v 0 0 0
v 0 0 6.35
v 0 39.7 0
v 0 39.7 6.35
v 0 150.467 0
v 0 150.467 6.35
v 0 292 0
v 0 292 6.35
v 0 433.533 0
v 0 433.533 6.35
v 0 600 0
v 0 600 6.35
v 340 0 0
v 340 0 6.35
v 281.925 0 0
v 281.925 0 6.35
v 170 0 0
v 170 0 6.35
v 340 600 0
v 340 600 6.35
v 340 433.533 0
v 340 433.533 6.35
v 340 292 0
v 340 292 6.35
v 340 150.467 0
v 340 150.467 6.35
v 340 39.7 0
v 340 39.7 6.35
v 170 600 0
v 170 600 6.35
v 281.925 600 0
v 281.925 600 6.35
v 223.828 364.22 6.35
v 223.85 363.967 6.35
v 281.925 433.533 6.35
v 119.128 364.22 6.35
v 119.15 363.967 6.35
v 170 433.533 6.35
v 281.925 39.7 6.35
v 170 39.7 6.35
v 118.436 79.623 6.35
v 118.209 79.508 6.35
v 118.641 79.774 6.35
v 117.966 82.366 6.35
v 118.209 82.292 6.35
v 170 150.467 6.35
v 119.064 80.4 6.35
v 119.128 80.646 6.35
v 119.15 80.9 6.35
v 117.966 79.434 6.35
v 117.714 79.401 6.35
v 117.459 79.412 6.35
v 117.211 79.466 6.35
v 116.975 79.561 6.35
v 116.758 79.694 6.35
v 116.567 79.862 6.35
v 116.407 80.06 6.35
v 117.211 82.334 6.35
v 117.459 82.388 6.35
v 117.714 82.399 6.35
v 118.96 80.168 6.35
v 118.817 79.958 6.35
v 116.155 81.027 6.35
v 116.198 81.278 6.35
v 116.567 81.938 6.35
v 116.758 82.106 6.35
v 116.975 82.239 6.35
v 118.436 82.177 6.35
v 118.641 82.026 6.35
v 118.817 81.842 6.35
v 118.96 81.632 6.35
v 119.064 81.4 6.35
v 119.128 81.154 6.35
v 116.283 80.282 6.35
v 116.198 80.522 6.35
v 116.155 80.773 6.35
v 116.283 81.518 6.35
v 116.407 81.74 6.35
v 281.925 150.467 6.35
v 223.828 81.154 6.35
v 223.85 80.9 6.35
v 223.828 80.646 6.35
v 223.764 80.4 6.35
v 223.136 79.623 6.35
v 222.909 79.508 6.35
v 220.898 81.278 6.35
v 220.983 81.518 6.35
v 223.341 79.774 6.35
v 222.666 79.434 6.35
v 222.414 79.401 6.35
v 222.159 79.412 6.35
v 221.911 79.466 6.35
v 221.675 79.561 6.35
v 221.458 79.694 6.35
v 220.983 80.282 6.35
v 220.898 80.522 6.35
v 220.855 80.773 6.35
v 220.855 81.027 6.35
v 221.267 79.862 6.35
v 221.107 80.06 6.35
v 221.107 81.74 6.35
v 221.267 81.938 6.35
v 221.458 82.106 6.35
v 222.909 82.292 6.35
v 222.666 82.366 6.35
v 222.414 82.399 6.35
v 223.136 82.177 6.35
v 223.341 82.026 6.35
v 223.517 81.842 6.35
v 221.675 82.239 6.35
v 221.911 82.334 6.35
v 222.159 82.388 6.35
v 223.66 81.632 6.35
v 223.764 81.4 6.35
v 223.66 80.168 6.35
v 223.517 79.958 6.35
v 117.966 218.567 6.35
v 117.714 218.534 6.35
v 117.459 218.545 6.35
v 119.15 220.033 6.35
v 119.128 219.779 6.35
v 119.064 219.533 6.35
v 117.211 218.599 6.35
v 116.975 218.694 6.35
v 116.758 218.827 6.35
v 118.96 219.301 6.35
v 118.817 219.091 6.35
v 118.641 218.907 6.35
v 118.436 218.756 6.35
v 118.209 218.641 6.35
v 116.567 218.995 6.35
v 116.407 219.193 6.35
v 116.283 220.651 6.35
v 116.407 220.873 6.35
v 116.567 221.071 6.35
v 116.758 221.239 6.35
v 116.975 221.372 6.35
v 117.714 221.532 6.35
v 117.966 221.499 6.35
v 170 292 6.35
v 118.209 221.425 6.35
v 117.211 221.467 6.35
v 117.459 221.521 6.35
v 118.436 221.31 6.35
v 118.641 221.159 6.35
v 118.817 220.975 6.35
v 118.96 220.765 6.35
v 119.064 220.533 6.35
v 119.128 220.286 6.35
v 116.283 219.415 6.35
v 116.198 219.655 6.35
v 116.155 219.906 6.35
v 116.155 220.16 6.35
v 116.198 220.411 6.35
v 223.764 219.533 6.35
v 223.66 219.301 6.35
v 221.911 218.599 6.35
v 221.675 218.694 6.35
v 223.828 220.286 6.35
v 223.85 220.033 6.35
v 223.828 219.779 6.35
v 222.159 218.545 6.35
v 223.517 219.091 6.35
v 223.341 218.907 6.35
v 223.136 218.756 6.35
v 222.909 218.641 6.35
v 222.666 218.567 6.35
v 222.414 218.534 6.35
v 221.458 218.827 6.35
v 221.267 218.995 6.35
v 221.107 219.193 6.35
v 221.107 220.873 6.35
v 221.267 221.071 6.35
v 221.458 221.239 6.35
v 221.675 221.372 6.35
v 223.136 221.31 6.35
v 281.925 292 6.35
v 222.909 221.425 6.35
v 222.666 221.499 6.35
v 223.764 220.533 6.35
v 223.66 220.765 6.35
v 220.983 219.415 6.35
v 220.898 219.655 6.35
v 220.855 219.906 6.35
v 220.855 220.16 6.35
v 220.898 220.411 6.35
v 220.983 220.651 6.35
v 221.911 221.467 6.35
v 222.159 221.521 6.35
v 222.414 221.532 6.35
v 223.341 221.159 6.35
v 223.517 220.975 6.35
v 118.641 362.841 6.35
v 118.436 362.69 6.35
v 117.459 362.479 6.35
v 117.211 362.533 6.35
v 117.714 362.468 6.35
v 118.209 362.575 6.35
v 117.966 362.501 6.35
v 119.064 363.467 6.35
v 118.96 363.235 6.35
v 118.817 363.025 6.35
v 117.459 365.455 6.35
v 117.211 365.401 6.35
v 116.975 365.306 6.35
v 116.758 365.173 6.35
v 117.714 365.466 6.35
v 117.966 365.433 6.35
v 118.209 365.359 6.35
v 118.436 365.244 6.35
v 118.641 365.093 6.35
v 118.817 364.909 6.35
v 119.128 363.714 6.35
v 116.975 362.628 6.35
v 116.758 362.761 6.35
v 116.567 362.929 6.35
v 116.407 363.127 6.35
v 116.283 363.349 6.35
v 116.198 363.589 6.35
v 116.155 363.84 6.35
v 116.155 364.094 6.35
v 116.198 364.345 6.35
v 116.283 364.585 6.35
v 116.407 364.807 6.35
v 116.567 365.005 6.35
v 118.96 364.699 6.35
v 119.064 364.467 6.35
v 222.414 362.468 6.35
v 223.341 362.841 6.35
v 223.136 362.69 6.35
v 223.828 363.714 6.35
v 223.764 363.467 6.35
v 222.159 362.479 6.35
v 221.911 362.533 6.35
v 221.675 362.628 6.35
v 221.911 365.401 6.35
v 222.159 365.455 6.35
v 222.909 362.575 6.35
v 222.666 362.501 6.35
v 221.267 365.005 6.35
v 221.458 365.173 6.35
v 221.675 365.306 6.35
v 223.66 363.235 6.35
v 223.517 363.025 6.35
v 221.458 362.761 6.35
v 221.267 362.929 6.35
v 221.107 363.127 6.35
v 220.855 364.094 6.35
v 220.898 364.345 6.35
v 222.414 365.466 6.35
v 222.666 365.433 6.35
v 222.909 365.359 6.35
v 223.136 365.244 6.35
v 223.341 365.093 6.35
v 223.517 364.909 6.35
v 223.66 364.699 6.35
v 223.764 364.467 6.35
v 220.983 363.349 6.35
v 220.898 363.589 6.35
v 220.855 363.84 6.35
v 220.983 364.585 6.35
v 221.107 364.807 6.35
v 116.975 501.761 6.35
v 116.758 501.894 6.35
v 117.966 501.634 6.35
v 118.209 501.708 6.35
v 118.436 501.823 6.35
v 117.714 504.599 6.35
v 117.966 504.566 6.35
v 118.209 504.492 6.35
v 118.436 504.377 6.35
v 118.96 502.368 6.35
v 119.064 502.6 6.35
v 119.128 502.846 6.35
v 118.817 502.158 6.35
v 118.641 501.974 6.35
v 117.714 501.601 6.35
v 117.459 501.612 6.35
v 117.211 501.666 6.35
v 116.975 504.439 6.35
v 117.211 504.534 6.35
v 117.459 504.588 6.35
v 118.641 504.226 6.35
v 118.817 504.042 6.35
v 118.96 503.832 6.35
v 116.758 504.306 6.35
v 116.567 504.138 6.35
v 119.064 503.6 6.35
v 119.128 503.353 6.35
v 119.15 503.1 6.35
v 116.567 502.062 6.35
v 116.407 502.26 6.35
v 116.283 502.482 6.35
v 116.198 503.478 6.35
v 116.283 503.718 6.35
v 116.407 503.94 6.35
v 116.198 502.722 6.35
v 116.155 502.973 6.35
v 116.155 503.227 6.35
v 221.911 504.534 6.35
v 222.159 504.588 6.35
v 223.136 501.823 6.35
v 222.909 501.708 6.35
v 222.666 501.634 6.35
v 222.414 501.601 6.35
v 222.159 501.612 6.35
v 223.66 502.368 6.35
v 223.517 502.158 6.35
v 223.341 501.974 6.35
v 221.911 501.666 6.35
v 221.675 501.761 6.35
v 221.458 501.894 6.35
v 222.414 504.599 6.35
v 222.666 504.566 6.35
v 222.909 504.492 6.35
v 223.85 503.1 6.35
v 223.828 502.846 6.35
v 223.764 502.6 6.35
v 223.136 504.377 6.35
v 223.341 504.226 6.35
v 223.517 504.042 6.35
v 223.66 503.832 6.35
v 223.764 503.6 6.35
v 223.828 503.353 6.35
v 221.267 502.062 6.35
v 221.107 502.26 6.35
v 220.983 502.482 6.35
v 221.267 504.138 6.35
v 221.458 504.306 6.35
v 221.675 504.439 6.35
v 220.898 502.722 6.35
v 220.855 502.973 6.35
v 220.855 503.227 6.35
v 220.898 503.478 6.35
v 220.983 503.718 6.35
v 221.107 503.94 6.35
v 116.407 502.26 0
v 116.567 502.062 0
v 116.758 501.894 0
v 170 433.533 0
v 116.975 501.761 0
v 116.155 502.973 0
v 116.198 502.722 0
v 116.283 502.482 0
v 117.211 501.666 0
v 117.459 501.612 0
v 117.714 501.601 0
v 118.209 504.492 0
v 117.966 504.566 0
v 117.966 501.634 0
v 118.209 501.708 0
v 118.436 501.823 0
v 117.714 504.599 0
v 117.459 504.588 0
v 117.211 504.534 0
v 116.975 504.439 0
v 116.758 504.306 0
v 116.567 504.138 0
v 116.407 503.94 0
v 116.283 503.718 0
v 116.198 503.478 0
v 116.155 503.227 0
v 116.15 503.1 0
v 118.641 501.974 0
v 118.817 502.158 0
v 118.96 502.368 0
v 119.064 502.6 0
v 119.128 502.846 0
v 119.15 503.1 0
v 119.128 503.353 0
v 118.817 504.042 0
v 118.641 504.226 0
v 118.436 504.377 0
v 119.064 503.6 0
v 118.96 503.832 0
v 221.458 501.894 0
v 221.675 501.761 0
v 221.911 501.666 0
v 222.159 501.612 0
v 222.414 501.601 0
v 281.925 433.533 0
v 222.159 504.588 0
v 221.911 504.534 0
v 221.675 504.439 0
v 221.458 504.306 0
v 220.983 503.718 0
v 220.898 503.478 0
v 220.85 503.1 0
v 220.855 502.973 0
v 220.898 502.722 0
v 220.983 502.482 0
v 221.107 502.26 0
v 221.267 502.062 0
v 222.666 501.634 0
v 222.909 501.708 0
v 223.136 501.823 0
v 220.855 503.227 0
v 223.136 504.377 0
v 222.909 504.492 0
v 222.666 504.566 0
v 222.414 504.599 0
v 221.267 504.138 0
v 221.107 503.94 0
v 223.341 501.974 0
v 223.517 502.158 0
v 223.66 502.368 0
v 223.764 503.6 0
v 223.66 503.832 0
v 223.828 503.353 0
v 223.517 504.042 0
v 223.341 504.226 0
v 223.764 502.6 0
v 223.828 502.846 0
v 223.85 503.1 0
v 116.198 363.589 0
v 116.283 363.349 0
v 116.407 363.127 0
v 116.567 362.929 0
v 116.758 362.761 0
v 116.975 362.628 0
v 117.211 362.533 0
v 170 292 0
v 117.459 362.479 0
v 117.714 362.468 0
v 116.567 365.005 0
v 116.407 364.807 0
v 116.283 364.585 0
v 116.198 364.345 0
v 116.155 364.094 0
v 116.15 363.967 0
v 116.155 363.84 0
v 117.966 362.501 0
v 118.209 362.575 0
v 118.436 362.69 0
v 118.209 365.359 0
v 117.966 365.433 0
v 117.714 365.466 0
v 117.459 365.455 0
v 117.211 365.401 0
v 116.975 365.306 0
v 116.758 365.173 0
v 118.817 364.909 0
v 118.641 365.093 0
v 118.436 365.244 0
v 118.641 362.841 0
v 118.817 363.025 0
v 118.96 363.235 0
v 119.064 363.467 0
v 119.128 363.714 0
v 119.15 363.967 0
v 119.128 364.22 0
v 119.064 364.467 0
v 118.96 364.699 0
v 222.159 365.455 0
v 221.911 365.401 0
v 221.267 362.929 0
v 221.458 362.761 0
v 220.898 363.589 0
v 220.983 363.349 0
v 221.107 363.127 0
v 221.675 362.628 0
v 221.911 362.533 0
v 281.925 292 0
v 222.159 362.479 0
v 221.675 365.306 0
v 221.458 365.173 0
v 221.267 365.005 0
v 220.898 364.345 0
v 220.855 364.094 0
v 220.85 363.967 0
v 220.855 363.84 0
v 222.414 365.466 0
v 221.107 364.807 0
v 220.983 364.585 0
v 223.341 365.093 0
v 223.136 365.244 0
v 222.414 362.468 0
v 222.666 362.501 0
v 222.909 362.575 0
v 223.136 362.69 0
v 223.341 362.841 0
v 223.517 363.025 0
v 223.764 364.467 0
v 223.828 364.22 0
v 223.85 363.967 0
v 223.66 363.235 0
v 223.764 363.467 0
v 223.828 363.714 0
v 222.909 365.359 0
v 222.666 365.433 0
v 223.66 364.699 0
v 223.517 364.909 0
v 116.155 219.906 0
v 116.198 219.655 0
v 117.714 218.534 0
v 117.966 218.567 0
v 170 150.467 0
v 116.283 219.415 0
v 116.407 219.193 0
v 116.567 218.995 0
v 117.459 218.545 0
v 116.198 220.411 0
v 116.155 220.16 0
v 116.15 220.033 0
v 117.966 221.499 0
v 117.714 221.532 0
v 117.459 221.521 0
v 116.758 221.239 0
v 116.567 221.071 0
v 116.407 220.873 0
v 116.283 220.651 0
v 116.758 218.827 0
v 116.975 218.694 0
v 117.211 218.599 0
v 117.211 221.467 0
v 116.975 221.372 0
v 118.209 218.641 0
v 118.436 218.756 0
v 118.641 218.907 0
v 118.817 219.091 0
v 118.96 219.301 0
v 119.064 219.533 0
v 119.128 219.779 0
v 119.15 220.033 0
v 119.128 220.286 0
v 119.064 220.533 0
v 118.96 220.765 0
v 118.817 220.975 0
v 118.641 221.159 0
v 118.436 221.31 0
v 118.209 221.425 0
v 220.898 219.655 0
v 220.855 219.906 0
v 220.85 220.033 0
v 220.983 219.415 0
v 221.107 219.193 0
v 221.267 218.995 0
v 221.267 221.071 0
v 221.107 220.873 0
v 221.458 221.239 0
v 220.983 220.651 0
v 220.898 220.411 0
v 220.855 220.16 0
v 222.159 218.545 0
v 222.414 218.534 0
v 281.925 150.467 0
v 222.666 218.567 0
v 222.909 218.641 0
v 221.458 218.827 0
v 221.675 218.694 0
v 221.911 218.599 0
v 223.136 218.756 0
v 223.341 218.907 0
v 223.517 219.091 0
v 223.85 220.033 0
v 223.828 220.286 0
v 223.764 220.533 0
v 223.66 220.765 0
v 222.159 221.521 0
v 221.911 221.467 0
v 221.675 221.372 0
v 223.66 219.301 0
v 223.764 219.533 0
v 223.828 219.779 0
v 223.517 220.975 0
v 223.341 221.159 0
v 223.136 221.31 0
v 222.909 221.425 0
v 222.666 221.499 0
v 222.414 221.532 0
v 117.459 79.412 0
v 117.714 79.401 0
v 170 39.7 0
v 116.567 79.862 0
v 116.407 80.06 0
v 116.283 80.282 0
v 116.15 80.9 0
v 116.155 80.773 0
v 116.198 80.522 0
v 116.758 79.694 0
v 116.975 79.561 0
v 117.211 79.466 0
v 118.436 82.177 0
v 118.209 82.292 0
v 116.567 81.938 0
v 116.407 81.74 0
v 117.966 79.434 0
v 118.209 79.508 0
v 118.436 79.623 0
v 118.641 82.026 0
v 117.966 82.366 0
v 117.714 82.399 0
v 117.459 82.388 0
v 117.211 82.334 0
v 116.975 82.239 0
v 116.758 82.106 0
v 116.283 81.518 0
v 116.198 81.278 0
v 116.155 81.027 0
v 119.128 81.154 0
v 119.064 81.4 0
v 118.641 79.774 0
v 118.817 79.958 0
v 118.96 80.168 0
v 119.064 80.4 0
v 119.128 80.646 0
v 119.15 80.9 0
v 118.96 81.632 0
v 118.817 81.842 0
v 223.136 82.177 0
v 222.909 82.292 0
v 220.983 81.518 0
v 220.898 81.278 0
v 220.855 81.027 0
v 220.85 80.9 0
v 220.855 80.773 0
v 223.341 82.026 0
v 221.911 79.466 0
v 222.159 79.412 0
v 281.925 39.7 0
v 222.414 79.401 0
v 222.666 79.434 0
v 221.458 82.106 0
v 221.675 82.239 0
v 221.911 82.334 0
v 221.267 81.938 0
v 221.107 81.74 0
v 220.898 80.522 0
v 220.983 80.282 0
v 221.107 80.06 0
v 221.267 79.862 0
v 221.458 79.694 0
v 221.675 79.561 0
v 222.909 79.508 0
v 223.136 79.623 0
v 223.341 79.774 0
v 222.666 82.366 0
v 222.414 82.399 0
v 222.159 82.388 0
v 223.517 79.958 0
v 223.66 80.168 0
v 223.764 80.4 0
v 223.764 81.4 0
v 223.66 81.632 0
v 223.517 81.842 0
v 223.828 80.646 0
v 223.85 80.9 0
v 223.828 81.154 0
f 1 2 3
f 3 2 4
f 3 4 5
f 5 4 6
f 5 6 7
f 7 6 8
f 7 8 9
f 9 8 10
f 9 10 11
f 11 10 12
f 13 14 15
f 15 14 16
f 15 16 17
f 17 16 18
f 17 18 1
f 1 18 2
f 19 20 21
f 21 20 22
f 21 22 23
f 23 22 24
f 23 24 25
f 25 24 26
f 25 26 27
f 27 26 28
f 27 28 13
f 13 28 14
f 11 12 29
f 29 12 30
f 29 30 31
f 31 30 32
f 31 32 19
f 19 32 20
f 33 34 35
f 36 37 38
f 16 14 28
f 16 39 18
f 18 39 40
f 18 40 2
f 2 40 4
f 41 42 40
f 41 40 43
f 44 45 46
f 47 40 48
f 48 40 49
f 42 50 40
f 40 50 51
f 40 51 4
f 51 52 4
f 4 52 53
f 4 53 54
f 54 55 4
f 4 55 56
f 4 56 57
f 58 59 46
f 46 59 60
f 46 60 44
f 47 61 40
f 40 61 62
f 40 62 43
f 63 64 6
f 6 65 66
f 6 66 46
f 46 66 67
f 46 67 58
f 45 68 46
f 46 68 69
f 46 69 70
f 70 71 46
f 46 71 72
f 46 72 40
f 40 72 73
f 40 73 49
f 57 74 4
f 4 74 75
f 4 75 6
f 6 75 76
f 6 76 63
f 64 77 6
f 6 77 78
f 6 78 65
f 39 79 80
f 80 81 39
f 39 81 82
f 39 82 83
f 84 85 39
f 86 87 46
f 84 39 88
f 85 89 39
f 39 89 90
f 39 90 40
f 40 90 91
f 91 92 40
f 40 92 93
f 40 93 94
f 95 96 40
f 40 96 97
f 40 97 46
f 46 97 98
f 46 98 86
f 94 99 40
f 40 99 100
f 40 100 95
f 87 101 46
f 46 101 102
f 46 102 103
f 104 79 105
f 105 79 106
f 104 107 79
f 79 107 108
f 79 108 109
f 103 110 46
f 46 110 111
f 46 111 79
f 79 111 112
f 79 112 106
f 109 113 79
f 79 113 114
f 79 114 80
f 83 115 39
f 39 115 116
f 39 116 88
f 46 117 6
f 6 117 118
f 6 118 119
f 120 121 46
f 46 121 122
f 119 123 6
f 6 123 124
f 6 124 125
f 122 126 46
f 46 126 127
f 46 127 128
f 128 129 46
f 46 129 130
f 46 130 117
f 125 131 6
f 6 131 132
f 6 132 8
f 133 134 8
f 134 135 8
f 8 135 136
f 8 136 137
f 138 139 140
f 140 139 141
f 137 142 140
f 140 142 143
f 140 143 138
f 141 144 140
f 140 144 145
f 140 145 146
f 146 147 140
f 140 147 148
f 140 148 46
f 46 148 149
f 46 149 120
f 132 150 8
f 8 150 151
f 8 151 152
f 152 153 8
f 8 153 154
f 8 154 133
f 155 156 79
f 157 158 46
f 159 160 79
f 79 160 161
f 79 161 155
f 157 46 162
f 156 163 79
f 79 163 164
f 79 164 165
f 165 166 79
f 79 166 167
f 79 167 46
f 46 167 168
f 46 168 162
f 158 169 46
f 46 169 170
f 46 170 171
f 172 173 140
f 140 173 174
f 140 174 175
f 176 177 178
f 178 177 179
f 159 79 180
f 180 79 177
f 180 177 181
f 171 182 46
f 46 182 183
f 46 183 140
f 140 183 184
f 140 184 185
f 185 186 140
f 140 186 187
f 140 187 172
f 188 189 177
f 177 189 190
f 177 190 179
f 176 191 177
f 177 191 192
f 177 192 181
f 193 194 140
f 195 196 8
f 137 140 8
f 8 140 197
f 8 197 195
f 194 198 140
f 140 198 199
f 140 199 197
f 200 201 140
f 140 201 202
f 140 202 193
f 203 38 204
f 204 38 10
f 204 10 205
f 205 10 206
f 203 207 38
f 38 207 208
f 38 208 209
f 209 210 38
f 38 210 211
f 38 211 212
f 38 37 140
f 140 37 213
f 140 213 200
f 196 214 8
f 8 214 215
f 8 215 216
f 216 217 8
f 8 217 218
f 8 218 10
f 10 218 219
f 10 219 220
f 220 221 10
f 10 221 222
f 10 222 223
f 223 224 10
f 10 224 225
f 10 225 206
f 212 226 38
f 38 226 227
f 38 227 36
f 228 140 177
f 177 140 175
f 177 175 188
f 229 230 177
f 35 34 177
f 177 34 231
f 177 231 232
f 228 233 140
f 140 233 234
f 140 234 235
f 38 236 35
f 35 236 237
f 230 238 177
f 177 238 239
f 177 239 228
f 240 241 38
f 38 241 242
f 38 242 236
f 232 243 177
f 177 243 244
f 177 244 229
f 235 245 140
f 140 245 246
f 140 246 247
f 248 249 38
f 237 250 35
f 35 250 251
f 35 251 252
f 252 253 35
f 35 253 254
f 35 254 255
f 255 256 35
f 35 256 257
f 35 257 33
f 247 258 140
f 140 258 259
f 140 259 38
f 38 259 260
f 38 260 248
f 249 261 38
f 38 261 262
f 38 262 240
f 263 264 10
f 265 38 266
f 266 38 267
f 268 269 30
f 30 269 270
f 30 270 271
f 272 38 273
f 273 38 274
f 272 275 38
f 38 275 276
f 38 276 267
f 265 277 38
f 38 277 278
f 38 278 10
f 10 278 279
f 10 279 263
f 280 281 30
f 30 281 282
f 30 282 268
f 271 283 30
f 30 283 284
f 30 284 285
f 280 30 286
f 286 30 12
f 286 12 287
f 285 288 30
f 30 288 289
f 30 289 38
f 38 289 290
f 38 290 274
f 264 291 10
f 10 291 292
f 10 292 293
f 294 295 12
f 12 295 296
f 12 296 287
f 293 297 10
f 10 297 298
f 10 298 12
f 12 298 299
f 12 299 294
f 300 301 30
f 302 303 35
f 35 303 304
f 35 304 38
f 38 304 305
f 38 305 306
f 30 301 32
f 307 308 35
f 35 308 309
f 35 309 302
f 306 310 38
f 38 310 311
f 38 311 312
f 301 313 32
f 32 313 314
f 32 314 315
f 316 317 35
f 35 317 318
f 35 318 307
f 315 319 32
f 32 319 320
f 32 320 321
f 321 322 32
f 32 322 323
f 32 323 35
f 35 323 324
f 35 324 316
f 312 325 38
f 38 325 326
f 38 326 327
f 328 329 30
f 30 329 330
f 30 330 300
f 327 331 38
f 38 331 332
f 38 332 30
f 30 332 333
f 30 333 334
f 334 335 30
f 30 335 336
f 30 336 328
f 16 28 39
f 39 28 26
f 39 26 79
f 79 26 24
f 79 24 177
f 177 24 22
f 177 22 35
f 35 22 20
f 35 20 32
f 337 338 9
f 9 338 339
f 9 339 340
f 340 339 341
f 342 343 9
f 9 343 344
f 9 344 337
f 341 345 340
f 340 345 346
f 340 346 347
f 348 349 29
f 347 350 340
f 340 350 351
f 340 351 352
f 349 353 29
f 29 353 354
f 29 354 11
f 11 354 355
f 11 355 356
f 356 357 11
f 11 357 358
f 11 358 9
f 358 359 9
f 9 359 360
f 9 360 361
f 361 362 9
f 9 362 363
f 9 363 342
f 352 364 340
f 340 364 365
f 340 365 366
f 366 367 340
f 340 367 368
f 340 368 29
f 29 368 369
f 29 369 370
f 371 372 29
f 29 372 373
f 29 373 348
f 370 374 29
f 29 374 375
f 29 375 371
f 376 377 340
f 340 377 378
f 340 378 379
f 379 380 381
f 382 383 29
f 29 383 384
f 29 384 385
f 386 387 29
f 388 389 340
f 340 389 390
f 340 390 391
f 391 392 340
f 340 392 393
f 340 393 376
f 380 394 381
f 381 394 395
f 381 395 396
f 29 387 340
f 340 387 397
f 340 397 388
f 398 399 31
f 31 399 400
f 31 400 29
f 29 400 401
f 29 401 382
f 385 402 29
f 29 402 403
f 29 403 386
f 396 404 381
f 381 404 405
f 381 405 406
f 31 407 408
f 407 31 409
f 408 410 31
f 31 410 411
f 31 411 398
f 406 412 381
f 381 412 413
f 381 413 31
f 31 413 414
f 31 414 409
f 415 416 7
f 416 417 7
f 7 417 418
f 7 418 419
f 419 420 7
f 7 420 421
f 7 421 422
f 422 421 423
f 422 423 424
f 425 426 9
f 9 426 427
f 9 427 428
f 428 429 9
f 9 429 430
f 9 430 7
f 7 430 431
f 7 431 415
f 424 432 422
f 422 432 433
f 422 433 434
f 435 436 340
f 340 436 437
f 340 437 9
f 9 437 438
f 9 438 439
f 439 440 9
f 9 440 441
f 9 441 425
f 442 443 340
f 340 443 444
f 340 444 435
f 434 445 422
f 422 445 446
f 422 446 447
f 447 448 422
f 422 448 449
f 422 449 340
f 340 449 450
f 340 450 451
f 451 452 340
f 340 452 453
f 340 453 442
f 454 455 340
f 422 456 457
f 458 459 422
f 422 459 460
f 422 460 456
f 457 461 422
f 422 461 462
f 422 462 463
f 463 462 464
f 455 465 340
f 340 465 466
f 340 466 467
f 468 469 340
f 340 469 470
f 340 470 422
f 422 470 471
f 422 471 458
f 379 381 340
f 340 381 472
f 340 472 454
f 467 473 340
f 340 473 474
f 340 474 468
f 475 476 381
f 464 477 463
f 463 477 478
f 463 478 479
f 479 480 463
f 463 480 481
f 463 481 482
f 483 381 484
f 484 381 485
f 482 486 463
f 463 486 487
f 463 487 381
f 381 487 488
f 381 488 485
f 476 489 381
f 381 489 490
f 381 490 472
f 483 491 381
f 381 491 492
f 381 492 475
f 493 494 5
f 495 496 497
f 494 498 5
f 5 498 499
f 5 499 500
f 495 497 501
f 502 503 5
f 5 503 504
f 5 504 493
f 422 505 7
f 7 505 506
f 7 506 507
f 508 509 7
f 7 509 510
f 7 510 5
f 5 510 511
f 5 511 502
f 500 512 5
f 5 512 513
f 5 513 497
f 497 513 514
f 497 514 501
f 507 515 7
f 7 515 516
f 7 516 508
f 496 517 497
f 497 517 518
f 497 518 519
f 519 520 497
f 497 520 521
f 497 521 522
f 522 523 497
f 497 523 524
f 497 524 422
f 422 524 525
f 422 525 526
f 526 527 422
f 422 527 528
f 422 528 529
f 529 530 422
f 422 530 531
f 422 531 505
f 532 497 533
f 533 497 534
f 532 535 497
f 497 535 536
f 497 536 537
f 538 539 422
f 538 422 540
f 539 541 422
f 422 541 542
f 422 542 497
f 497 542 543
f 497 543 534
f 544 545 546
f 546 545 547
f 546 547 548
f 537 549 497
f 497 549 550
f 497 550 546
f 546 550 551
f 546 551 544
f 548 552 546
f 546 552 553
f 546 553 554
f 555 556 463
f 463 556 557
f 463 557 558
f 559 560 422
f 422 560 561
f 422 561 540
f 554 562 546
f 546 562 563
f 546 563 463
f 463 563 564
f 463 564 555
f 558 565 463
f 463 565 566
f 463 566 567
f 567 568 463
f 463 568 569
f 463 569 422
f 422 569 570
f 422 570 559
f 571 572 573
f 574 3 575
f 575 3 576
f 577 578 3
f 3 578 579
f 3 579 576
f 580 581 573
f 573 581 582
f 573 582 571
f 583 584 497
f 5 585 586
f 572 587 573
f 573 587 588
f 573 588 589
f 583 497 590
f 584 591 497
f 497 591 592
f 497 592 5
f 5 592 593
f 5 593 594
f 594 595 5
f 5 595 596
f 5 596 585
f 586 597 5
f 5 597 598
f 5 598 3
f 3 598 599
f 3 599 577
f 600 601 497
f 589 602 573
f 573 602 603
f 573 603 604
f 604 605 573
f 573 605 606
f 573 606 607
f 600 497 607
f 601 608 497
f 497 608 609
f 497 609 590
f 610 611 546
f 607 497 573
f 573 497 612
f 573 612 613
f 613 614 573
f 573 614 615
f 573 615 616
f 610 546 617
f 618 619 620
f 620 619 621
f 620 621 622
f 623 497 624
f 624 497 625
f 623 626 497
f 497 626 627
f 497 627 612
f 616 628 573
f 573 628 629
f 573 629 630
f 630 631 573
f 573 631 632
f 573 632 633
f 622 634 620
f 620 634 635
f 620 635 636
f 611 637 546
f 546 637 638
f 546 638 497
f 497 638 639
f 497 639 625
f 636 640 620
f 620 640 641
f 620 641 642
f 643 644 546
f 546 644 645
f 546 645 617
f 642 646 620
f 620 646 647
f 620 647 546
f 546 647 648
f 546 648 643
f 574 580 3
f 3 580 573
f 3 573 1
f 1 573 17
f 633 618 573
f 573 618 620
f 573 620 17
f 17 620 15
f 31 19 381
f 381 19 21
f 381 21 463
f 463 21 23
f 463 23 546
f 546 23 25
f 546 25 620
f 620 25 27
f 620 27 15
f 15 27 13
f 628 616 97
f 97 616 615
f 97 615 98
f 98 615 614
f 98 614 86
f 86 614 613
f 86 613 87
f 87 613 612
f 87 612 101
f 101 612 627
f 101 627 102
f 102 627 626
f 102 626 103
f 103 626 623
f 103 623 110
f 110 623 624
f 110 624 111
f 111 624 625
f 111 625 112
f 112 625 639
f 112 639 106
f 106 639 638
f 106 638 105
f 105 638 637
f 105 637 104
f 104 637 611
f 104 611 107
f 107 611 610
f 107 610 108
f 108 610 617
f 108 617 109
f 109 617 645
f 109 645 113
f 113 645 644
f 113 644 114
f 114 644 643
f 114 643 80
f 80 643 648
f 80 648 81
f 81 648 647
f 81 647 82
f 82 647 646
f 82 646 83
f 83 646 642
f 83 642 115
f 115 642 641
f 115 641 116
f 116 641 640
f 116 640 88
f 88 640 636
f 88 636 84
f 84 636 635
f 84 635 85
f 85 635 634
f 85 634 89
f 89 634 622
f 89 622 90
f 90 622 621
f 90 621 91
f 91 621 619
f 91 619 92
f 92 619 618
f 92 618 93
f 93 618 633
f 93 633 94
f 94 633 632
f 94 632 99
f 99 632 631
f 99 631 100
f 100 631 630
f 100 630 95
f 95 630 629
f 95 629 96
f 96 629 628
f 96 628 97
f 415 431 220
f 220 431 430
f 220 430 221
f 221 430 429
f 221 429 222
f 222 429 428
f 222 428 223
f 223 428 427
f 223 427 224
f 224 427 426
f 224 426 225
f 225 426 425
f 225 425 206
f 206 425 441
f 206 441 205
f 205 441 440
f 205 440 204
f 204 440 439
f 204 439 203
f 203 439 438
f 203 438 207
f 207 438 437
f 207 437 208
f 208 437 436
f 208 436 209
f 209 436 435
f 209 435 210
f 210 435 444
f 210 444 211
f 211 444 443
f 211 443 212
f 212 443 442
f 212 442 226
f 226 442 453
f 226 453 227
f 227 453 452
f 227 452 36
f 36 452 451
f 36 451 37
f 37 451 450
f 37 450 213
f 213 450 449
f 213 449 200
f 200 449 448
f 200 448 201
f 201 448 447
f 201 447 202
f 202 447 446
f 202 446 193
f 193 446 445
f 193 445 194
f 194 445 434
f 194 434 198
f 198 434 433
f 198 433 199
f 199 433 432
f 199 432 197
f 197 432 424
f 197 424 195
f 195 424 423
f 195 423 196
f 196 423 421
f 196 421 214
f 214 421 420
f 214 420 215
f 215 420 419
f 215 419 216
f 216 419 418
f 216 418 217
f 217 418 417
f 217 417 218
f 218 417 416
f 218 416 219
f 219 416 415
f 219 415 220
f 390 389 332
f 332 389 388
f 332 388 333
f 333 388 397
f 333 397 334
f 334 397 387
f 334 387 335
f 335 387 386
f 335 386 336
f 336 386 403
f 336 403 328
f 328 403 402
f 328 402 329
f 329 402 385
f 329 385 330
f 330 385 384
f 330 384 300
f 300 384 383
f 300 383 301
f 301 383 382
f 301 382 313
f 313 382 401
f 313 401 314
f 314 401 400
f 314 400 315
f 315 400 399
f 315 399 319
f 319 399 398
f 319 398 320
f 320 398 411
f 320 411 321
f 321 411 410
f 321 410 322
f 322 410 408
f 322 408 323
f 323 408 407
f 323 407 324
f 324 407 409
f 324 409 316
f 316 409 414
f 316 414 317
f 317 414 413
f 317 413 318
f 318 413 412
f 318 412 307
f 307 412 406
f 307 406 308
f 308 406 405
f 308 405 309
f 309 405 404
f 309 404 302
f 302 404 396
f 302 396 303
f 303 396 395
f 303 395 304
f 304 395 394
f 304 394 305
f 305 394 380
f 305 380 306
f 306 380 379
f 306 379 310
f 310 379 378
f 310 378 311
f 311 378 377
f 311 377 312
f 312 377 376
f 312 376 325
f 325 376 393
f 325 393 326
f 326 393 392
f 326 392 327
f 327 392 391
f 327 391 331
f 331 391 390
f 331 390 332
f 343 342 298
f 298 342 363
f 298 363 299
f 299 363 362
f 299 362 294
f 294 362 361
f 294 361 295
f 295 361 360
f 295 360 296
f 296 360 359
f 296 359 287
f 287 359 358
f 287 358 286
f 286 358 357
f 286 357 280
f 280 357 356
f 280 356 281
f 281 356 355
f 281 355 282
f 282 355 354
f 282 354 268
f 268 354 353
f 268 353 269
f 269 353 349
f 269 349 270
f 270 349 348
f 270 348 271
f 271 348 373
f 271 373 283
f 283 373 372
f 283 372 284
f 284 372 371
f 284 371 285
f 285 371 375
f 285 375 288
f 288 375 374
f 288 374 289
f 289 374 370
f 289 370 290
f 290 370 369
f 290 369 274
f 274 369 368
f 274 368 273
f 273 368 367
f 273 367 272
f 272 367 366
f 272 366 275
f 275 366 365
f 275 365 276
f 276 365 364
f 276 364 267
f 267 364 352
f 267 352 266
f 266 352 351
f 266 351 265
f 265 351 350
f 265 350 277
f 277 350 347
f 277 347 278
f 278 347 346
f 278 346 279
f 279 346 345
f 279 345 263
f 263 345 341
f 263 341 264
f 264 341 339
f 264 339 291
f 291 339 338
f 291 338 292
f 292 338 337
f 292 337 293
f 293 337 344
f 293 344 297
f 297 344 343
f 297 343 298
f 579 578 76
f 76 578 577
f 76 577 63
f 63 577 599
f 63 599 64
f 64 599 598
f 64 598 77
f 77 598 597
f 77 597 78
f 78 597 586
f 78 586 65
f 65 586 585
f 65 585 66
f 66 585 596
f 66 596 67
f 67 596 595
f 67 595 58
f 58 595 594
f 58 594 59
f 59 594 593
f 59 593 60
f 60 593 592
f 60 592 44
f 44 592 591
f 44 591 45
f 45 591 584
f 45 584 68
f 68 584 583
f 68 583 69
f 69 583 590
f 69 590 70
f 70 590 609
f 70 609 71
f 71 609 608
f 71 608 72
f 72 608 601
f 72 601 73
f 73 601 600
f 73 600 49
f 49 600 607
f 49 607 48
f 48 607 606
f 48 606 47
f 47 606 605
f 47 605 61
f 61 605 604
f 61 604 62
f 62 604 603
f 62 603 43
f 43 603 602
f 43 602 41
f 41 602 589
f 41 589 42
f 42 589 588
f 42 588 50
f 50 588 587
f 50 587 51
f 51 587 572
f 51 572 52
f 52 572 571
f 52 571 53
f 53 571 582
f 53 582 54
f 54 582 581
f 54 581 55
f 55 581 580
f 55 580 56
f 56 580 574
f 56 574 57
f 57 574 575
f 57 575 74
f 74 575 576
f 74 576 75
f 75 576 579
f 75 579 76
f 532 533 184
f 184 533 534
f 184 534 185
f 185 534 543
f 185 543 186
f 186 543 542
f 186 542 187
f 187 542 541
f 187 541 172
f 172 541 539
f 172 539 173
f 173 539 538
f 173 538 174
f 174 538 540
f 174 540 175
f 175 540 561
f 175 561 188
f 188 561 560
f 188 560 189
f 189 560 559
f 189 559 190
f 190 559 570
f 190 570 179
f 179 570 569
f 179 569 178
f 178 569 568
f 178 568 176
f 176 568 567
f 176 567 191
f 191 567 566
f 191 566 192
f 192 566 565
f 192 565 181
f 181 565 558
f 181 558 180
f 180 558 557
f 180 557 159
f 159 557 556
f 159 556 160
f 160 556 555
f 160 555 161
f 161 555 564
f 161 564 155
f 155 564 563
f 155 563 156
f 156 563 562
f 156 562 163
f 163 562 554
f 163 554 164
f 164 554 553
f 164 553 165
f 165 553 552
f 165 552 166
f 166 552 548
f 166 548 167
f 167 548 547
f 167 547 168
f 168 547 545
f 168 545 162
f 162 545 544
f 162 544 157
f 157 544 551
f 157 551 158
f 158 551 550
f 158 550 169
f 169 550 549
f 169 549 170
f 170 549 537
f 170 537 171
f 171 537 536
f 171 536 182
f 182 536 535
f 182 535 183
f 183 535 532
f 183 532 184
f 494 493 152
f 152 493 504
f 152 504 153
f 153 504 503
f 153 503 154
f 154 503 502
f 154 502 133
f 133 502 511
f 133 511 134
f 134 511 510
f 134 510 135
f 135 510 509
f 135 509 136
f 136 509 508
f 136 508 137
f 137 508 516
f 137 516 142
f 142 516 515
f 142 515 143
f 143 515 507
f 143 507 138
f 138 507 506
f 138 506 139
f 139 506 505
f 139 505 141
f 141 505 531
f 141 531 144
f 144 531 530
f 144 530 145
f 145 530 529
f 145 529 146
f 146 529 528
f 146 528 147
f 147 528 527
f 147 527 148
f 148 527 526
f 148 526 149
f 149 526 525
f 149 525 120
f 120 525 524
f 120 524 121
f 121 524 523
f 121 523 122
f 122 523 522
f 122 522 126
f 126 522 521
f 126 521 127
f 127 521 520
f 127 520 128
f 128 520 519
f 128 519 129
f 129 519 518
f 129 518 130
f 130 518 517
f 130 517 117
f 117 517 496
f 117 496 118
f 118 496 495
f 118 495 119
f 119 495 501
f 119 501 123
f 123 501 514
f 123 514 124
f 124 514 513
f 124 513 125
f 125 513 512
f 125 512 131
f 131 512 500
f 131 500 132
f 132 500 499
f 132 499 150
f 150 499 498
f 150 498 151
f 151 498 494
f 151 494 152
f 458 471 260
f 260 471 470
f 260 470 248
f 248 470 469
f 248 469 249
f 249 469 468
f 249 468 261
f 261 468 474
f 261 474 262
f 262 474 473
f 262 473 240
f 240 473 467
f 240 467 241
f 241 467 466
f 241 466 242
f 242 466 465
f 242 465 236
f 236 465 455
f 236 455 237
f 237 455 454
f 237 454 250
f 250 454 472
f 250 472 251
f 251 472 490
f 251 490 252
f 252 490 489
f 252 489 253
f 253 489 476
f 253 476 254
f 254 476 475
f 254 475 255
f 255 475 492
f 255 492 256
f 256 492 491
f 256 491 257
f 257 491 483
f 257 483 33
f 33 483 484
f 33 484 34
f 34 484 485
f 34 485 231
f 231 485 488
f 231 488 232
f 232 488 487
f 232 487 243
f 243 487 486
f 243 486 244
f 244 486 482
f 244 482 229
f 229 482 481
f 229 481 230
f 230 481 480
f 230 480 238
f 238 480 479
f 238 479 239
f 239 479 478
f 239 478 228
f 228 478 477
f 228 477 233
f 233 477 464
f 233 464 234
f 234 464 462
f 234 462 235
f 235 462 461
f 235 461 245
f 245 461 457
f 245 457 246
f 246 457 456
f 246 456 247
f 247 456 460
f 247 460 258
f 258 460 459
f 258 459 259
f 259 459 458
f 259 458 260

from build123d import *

# Parameters (mm, degrees)
SKETCH1_W        = 340
SKETCH1_H        = 600
SHEET_DEPTH      = 6.35
HOLES_DEPTH      = 690.666819921
HOLES_DEPTH_BACK = 690.666819921
SKETCH2_R        = 1.5


with BuildPart() as part:
    # Sketch1 → Sheet (new body)
    with BuildSketch(Plane.XY):
        with Locations((170, 300)):
            Rectangle(SKETCH1_W, SKETCH1_H)
    extrude(amount=SHEET_DEPTH)

    # Sketch2 → Holes (cut, two sides: drawn at the far end of the back side and taken through both)
    with BuildSketch(Plane.XY.offset(-HOLES_DEPTH_BACK)):
        with Locations((222.35, 80.9)):
            Circle(SKETCH2_R)
        with Locations((117.65, 80.9)):
            Circle(SKETCH2_R)
        with Locations((222.35, 220.033)):
            Circle(SKETCH2_R)
        with Locations((117.65, 220.033)):
            Circle(SKETCH2_R)
        with Locations((222.35, 363.967)):
            Circle(SKETCH2_R)
        with Locations((117.65, 363.967)):
            Circle(SKETCH2_R)
        with Locations((222.35, 503.1)):
            Circle(SKETCH2_R)
        with Locations((117.65, 503.1)):
            Circle(SKETCH2_R)
    extrude(amount=HOLES_DEPTH + HOLES_DEPTH_BACK, mode=Mode.SUBTRACT)


solid = part.part
